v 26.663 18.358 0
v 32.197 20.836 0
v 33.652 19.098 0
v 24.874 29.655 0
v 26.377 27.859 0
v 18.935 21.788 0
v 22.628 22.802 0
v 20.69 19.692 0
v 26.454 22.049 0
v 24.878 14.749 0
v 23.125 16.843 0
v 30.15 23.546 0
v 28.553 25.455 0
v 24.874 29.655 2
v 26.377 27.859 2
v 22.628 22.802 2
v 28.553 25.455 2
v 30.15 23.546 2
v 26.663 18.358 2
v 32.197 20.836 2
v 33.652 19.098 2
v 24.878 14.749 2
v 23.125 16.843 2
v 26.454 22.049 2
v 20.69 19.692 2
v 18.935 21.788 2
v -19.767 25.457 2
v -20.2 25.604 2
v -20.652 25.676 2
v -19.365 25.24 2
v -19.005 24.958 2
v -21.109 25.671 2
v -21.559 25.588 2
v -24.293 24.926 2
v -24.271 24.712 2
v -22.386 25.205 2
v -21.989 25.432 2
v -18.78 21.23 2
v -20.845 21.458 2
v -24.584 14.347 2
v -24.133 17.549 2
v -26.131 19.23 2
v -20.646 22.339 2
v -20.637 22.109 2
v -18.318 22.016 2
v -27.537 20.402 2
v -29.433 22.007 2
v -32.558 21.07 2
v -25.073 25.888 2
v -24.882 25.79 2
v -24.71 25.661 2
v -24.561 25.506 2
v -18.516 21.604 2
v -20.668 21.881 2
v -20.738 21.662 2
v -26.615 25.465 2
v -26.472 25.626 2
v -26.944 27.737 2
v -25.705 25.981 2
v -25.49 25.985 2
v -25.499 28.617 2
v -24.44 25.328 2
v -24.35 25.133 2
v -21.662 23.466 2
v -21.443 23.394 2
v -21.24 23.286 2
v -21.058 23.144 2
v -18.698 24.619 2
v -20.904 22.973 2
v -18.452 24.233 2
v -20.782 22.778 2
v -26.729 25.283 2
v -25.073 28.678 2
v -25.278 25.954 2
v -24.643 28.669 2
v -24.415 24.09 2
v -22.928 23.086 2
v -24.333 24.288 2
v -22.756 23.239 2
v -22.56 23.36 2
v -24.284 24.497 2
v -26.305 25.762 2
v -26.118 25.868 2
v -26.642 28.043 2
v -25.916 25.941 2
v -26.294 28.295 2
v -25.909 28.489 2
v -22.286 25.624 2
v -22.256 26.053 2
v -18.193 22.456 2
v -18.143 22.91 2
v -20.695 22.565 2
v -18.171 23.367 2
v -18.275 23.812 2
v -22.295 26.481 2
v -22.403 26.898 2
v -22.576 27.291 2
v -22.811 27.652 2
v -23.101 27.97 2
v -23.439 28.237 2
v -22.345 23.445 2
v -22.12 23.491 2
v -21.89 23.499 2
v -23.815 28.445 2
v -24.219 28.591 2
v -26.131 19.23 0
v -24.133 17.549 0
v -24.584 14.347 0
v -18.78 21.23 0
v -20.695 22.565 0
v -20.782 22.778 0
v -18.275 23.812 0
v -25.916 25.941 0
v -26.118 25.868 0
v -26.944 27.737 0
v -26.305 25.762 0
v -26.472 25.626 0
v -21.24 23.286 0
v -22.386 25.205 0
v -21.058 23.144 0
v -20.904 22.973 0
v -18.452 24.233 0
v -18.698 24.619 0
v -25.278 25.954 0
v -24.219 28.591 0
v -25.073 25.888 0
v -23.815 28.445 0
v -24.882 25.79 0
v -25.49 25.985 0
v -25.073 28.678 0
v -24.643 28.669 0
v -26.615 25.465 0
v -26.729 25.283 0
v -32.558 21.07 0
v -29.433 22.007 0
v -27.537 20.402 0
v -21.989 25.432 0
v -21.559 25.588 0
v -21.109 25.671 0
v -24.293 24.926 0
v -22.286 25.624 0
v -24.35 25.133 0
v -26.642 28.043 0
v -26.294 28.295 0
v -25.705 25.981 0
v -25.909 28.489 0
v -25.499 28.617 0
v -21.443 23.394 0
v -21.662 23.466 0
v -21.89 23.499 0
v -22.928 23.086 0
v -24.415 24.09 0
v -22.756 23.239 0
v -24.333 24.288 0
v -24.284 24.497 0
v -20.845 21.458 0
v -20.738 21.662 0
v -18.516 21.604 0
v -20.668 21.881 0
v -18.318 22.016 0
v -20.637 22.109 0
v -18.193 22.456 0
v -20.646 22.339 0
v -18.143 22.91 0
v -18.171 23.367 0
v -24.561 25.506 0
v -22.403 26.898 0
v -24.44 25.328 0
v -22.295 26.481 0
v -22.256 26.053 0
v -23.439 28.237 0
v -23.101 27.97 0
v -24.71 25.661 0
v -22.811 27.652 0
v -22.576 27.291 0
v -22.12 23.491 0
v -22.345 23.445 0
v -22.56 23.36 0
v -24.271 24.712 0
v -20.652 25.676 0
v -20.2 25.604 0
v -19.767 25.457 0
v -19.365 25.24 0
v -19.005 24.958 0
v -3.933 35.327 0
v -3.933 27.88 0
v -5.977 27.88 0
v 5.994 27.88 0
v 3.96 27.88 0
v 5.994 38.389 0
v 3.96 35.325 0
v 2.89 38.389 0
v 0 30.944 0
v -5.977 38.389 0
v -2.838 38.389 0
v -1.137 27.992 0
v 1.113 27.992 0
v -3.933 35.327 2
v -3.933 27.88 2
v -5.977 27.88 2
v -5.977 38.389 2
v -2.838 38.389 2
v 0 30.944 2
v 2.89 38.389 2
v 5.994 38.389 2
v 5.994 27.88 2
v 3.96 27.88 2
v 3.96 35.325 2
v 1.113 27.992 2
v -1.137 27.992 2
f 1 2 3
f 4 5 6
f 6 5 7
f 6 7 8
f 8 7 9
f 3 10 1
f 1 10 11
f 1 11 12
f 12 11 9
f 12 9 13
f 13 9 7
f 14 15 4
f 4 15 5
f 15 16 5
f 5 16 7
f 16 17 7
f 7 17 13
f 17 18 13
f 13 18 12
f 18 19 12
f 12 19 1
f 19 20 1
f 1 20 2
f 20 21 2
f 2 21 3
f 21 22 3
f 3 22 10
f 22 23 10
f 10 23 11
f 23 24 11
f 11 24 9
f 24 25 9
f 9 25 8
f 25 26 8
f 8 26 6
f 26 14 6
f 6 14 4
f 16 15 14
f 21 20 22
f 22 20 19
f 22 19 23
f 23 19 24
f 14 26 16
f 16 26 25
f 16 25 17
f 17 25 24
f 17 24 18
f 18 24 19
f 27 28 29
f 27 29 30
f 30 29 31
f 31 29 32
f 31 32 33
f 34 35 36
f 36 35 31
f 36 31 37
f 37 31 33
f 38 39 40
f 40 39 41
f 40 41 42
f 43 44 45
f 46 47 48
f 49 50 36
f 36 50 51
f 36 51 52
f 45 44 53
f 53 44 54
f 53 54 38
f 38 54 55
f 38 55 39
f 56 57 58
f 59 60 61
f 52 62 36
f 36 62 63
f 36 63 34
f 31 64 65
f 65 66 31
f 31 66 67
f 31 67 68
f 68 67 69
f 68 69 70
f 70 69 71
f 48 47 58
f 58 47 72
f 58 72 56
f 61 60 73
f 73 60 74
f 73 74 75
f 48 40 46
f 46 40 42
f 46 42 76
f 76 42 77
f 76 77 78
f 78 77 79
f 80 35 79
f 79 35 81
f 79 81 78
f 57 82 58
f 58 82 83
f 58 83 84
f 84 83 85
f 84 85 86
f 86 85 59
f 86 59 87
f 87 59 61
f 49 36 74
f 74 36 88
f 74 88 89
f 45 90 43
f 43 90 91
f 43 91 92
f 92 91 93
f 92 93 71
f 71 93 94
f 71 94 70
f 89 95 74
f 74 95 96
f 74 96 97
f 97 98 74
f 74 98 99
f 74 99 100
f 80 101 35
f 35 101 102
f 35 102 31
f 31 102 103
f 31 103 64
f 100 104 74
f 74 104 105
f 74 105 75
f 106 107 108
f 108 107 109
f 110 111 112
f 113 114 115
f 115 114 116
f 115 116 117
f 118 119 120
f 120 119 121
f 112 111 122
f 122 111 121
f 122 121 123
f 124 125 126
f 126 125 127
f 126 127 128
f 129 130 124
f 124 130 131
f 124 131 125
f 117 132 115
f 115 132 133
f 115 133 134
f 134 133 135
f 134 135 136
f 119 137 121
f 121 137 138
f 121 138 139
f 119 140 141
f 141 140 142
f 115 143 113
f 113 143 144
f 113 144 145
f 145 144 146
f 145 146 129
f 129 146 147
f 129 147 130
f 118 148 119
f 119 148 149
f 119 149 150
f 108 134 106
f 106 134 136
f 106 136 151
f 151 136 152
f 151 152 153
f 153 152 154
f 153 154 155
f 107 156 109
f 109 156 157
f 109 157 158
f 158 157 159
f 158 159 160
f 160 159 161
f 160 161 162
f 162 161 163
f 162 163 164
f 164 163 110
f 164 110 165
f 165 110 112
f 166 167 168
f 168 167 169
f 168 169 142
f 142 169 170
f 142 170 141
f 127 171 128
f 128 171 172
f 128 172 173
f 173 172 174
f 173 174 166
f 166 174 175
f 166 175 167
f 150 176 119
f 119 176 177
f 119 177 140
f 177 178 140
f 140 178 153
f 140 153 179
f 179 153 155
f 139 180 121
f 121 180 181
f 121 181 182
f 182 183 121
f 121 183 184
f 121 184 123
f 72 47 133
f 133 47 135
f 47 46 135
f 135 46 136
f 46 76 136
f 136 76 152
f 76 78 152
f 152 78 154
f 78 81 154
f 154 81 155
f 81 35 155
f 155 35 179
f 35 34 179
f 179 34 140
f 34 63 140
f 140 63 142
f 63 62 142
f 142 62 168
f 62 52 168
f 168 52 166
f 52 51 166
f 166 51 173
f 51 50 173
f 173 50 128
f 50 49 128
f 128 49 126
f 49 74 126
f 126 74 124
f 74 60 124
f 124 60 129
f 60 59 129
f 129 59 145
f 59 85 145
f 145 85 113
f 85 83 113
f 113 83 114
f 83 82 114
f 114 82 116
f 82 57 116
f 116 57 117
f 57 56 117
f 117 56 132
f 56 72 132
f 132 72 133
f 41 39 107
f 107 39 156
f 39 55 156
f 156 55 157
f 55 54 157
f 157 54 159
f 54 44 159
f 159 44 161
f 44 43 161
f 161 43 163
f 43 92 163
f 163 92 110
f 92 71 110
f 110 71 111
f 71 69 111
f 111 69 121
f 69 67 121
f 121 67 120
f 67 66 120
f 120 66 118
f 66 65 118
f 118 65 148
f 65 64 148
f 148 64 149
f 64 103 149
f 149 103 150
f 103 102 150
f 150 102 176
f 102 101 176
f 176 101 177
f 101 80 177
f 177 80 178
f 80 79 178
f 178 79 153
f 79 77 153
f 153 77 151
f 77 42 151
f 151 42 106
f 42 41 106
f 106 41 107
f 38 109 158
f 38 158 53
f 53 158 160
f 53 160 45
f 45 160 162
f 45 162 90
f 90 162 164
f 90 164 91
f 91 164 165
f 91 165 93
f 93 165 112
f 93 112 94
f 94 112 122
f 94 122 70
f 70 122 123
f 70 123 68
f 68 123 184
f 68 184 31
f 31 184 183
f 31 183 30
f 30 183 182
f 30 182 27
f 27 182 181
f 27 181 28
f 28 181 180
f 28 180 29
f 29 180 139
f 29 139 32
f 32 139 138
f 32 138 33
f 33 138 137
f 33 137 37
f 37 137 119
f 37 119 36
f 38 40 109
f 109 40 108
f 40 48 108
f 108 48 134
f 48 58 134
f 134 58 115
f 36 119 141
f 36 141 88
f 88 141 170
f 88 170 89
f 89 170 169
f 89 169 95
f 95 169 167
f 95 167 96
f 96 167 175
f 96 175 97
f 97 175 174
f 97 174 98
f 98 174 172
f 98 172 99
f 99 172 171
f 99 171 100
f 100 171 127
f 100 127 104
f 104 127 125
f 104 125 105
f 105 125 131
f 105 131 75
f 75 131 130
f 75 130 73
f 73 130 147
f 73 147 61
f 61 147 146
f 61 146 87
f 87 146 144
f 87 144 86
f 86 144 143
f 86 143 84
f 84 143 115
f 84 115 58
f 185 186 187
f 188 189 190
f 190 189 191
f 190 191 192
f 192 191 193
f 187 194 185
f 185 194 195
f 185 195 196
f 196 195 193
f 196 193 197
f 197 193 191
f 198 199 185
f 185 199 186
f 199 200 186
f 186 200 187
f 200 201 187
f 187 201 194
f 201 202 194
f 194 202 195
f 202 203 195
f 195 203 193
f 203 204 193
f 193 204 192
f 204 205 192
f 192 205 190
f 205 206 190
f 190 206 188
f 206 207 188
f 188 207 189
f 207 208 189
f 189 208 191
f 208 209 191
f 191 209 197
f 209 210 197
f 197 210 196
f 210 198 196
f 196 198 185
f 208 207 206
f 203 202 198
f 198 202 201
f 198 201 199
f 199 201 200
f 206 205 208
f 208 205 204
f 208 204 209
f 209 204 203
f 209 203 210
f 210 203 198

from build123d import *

# Parameters (mm, degrees)
EXTRUDE_1_DEPTH     = 2
EXTRUDE_1_2_DEPTH   = 2
EXTRUDE_1_3_DEPTH   = 2
SKETCH_6_W          = 86.886545811
SKETCH_6_H          = 45.352143988
CUT_EXTRUDE_1_DEPTH = 52.125644596


with BuildPart() as part:
    # 草图4 → 凸台-拉伸1 (new body)
    with BuildSketch(Plane.XY):
        Polygon((-32.5857633, 21.06745862), (-24.581820031, 14.318573463), (-18.667207086, 21.333098879), (-18.41413244, 21.736159792), (-18.234803522, 22.177001467), (-18.13465246, 22.642257204), (-18.116731012, 23.117843142), (-18.181557978, 23.589339724), (-18.32718786, 24.042434206), (-18.549203241, 24.463393679), (-18.840867365, 24.839477053), (-19.193337763, 25.159270754), (-19.595940912, 25.413070192), (-20.036454523, 25.593200197), (-20.501542414, 25.694198122), (-20.977090204, 25.712981691), (-21.448693598, 25.649001589), (-21.902055109, 25.504195681), (-22.323418939, 25.282943239), (-22.237939203, 25.721435061), (-22.226228083, 26.168029299), (-22.288621271, 26.610396853), (-22.423394525, 27.03633069), (-22.626817072, 27.434081545), (-22.893288935, 27.792647829), (-23.215455377, 28.102157106), (-23.584405268, 28.354064455), (-23.989976251, 28.541396608), (-24.420968378, 28.659011354), (-24.865479792, 28.703643312), (-25.311242426, 28.67405652), (-25.745965326, 28.571090212), (-26.157632196, 28.397567263), (-26.534890497, 28.158278933), (-26.867333734, 27.859832277), align=None)
        Polygon((-29.433129633, 22.00672864), (-27.536842846, 20.401686478), (-24.415383661, 24.089553347), (-24.332948053, 24.288070192), (-24.284310663, 24.497451296), (-24.270799005, 24.71198987), (-24.292779291, 24.925811281), (-24.349656427, 25.133101931), (-24.439881647, 25.328216066), (-24.560983026, 25.505813112), (-24.709672296, 25.661040773), (-24.88187536, 25.789687624), (-25.07290777, 25.888244143), (-25.277558649, 25.953994265), (-25.490235651, 25.985183229), (-25.705155695, 25.980926027), (-25.916436518, 25.941359987), (-26.118325556, 25.867568483), (-26.305306757, 25.761535158), (-26.472298944, 25.626189699), (-26.614724481, 25.465194216), (-26.728715265, 25.282943239), align=None, mode=Mode.SUBTRACT)
        Polygon((-22.927964533, 23.086165895), (-26.131158197, 19.230041018), (-24.13251623, 17.548820009), (-20.844605768, 21.457534304), (-20.737939203, 21.661635866), (-20.668130243, 21.881103029), (-20.637284601, 22.109313479), (-20.646325434, 22.339431276), (-20.694978083, 22.564528933), (-20.781777704, 22.777846804), (-20.904122675, 22.972960939), (-21.058335626, 23.143996706), (-21.239770258, 23.285842409), (-21.442979181, 23.39419507), (-21.661851251, 23.465835085), (-21.889809931, 23.498580446), (-22.119996393, 23.491454592), (-22.345490778, 23.444686403), (-22.559518183, 23.359664431), (-22.755639398, 23.23895215), align=None, mode=Mode.SUBTRACT)
    extrude(amount=EXTRUDE_1_DEPTH)


with BuildPart() as body_2:
    # 草图4 → Extrude 1 2 (new body)
    with BuildSketch(Plane.XY):
        Polygon((-5.996850336, 38.408904543), (-5.996850336, 27.859832277), (-3.91276153, 27.859832277), (-3.91276153, 35.218716958), (-1.150554499, 27.972180703), (1.12643067, 27.972180703), (3.939782293, 35.218721034), (3.939782293, 27.859832277), (6.014273321, 27.859832277), (6.014273321, 38.408905525), (2.876387274, 38.408905525), (0, 31), (-2.824097956, 38.408904543), align=None)
    extrude(amount=EXTRUDE_1_2_DEPTH)


with BuildPart() as body_3:
    # 草图4 → Extrude 1 3 (new body)
    with BuildSketch(Plane.XY):
        Polygon((24.872824347, 29.687392702), (26.402881435, 27.859829995), (22.690074891, 22.851733117), (28.558242873, 25.479165769), (30.175307816, 23.547677324), (26.718580446, 18.404779635), (32.2027141, 20.860263506), (33.683638635, 19.091386728), (24.872830811, 14.723630109), (23.099783575, 16.841430178), (26.402884161, 22.00672864), (20.684073126, 19.667968264), (18.909277594, 21.787856569), align=None)
    extrude(amount=EXTRUDE_1_3_DEPTH)


with BuildPart() as cut_extrude_1_tool:
    # 草图6 → 切除-拉伸1 (new, through all)
    with BuildSketch(Plane.XY):
        with Locations((-4.093328752, 26.77922536)):
            Rectangle(SKETCH_6_W, SKETCH_6_H)
        with BuildLine():
            ThreePointArc((-18.779945256, 21.23042121), (-18.844501198, 24.794684989), (-22.385636588, 25.205177258))
            ThreePointArc((-22.385636588, 25.205177258), (-23.622330361, 28.348625158), (-26.944490905, 27.737130673))
            Line((-26.944490905, 27.737130673), (-32.557592495, 21.069866008))
            Line((-32.557592495, 21.069866008), (-24.584217581, 14.346755935))
            Line((-24.584217581, 14.346755935), (-18.779945256, 21.23042121))
        make_face(mode=Mode.SUBTRACT)
        Polygon((26.377427175, 27.859077936), (24.873633648, 29.655270373), (18.934822664, 21.788500161), (20.690027859, 19.692011354), (26.453742022, 22.049135277), (23.124538426, 16.84301764), (24.878056962, 14.748543447), (33.65199784, 19.098024119), (32.197085963, 20.835830316), (26.663039037, 18.357998115), (30.150325546, 23.546361502), (28.552614736, 25.454732579), (22.628490187, 22.802245752), align=None, mode=Mode.SUBTRACT)
        Polygon((-3.93276153, 35.327337842), (-3.93276153, 27.879832277), (-5.976850336, 27.879832277), (-5.976850336, 38.388904543), (-2.837878126, 38.388904543), (-0.000171222, 30.944297486), (2.890076973, 38.388905525), (5.994273321, 38.388905525), (5.994273321, 27.879832277), (3.959782293, 27.879832277), (3.959782293, 35.325497874), (1.112740971, 27.992180703), (-1.136774328, 27.992180703), align=None, mode=Mode.SUBTRACT)
    extrude(amount=CUT_EXTRUDE_1_DEPTH)


with BuildPart() as part_1:
    add(part.part)

    # 切除-拉伸1: cut by cut_extrude_1_tool
    add(cut_extrude_1_tool.part, mode=Mode.SUBTRACT)


with BuildPart() as body_2_1:
    add(body_2.part)

    # 切除-拉伸1: cut by cut_extrude_1_tool
    add(cut_extrude_1_tool.part, mode=Mode.SUBTRACT)


with BuildPart() as body_3_1:
    add(body_3.part)

    # 切除-拉伸1: cut by cut_extrude_1_tool
    add(cut_extrude_1_tool.part, mode=Mode.SUBTRACT)


solid = Compound([part_1.part, body_2_1.part, body_3_1.part])
